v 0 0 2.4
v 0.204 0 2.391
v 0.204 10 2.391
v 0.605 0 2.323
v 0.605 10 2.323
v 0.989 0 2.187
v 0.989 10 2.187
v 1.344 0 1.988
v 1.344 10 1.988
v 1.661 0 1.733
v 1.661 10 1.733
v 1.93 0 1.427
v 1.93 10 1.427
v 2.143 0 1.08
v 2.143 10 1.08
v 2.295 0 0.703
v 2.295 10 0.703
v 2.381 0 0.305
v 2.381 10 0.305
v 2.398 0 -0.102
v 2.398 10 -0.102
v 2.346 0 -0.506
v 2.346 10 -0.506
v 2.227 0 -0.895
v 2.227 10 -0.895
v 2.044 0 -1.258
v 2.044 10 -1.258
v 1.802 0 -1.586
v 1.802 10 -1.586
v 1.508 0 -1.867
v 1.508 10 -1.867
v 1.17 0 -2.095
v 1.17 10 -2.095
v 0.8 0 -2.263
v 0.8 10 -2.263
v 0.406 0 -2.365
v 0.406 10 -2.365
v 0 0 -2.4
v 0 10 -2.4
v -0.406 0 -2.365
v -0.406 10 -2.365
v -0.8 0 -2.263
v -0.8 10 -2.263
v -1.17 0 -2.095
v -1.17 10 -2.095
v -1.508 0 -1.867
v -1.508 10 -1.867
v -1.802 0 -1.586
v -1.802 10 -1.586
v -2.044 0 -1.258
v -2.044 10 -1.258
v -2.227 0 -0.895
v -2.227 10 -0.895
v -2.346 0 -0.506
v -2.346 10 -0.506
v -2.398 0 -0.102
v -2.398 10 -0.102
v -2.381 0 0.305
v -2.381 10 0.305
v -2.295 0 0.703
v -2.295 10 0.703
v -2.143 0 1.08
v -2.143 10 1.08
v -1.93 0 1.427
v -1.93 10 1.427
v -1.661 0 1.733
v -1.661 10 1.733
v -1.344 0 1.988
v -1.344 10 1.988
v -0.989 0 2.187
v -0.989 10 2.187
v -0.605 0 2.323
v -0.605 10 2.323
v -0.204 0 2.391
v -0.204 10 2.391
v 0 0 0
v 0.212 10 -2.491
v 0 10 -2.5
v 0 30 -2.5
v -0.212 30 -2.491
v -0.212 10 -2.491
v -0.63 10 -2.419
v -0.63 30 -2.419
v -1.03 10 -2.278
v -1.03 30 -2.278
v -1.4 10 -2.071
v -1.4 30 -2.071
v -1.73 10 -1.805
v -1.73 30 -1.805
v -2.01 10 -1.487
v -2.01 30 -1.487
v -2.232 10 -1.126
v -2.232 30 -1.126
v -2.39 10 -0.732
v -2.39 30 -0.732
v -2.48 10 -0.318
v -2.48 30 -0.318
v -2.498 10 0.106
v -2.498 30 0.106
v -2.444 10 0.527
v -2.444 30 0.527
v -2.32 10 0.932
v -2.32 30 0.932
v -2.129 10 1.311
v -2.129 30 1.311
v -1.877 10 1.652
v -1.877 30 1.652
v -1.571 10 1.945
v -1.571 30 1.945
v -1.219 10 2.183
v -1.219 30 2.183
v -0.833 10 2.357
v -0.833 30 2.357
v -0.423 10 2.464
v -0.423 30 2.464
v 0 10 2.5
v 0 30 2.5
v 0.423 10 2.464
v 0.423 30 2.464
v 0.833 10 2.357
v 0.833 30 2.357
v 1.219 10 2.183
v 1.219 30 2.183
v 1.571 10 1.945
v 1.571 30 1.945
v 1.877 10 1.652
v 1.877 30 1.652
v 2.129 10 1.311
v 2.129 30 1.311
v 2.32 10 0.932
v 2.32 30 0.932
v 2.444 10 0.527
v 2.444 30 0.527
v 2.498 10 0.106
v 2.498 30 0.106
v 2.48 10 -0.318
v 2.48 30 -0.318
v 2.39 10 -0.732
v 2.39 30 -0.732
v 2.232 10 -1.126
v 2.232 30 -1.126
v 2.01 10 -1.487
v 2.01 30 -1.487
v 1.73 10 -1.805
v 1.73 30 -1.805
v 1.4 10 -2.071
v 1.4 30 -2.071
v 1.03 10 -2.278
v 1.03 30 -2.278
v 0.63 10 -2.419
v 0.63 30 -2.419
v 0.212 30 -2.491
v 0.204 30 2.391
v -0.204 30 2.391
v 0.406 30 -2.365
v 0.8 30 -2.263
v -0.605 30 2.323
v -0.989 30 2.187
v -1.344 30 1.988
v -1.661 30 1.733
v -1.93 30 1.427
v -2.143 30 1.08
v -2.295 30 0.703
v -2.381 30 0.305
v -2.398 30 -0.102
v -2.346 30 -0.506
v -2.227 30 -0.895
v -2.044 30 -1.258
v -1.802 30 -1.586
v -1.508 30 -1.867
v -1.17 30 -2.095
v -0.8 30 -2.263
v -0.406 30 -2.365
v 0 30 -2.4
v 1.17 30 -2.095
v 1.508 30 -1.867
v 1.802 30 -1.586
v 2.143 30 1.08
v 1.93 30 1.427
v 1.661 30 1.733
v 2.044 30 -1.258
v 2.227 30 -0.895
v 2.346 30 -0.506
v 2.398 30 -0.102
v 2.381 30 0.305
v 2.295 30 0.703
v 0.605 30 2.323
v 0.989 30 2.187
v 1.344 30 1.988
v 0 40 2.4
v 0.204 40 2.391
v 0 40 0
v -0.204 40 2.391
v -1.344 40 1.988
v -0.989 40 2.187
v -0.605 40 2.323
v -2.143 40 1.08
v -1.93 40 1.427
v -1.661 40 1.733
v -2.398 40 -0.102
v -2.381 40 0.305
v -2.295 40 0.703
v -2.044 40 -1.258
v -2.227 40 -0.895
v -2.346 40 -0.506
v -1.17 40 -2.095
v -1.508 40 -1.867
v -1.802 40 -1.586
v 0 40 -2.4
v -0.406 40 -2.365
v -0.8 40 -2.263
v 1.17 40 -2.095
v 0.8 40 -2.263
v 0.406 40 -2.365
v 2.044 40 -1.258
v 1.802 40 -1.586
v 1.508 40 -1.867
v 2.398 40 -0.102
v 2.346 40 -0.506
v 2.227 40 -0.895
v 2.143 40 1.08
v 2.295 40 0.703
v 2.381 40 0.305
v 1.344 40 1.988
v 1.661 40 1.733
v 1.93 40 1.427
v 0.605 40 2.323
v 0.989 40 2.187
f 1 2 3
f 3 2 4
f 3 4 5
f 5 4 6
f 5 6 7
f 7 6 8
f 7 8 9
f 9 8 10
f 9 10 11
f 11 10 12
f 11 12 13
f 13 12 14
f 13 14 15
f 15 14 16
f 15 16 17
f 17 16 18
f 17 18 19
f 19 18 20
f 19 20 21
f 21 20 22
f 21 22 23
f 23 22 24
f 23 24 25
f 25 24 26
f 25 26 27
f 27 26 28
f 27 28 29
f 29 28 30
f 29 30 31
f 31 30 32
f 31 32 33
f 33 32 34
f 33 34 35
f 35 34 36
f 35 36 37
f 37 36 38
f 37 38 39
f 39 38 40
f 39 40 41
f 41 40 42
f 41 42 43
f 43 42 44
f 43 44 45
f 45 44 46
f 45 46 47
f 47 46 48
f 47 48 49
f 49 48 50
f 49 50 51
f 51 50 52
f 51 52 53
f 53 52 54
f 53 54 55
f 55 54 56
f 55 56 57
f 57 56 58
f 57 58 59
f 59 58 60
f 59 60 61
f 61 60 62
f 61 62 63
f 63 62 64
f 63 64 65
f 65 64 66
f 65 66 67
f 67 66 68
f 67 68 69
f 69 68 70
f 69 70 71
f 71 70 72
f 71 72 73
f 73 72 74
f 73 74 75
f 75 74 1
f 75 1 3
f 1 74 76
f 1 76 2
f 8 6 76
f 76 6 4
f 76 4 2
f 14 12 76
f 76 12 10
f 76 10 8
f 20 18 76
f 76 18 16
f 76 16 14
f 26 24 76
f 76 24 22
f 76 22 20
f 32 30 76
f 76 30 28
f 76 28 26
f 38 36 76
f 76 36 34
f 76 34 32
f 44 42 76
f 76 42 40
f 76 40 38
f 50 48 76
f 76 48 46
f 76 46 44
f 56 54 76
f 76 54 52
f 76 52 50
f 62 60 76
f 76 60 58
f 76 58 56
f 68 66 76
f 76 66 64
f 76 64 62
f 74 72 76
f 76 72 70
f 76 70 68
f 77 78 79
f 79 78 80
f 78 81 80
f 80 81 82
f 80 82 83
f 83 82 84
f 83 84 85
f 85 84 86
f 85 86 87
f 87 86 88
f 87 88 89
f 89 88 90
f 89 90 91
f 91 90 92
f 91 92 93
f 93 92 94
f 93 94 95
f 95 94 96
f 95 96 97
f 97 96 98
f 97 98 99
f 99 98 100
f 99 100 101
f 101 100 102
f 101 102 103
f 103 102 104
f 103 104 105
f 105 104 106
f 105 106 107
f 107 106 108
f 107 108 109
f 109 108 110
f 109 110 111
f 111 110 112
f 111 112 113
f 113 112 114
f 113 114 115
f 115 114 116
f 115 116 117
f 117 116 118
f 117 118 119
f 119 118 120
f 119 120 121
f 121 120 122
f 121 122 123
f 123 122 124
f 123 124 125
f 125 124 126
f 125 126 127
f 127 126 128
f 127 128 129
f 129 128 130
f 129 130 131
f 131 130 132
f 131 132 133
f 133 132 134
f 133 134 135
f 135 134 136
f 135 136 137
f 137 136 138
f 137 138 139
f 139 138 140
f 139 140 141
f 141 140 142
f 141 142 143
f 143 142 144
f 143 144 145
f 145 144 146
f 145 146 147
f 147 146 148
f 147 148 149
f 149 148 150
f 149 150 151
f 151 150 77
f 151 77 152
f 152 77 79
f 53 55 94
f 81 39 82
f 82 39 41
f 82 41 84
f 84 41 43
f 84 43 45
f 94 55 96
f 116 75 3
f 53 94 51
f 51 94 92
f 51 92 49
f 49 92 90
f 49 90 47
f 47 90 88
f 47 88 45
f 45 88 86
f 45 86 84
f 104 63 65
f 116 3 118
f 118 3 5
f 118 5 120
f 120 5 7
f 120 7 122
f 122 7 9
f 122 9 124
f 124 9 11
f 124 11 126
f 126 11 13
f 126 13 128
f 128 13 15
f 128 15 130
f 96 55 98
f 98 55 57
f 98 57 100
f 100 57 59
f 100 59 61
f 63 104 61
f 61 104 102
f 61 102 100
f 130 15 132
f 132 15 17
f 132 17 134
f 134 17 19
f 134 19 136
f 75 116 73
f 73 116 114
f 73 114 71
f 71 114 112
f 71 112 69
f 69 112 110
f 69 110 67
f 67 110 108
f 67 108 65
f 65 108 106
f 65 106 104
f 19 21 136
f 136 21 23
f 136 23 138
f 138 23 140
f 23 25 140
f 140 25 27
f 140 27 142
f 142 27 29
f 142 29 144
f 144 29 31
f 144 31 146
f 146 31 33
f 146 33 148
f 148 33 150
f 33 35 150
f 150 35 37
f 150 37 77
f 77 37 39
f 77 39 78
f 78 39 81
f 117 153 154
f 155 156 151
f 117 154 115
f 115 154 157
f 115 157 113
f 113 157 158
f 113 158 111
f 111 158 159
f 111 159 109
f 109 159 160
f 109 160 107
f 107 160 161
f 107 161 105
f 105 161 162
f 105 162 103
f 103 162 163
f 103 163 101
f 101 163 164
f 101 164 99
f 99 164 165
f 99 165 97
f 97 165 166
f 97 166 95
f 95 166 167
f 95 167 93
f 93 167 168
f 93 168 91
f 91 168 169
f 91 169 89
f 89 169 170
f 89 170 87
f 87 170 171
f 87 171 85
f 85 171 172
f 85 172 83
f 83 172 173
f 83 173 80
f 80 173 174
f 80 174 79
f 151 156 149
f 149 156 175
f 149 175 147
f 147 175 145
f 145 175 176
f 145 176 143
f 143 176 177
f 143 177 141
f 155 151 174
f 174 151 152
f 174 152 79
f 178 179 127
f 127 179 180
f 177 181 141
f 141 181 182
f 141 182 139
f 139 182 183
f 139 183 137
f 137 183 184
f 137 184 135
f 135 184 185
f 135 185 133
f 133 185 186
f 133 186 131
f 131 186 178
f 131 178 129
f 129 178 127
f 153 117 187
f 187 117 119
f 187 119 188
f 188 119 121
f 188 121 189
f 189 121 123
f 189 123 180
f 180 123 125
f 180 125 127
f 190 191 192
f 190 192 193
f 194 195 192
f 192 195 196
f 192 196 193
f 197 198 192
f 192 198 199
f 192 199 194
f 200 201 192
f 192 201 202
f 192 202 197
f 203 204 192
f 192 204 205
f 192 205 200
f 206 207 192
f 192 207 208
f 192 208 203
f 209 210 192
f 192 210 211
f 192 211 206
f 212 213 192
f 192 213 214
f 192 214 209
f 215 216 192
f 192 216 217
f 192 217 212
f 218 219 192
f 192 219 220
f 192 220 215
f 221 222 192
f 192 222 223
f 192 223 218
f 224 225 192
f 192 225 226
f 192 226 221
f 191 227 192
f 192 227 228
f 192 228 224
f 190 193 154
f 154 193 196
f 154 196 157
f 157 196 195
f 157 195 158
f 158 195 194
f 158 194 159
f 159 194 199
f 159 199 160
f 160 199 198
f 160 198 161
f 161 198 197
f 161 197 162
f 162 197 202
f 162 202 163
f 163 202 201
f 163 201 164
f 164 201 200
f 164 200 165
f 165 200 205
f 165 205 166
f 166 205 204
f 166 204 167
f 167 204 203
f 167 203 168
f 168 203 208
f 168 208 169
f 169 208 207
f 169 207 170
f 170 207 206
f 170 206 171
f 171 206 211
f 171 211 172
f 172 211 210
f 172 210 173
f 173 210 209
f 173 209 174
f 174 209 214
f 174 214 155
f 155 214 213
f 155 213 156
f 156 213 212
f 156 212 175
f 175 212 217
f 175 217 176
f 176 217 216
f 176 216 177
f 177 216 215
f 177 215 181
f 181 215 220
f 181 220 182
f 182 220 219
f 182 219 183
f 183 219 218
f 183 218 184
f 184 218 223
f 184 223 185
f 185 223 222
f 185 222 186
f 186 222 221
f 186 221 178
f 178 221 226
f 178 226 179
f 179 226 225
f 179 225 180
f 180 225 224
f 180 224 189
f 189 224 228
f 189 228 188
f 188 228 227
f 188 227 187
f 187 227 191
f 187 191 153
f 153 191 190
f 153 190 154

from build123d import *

# Parameters (mm, degrees)
SKETCH_1_R      = 2.4
EXTRUDE_1_DEPTH = 40
SKETCH_2_R      = 2.5
EXTRUDE_2_DEPTH = 10


with BuildPart() as part:
    # 草图1 → 凸台-拉伸1 (new body)
    with BuildSketch(Plane(origin=(0, 0, 0), x_dir=(1, 0, 0), z_dir=(0, 1, 0))):
        with Locations(Location((0, 0, 0), (0, 0, 270))):
            Circle(SKETCH_1_R)
    extrude(amount=EXTRUDE_1_DEPTH)

    # 草图2 → 凸台-拉伸2 (add, symmetric)
    with BuildSketch(Plane(origin=(0, 20, 0), x_dir=(-1, 0, 0), z_dir=(0, -1, 0))):
        with Locations(Location((0, 0, 0), (0, 0, 90))):
            Circle(SKETCH_2_R)
    extrude(amount=EXTRUDE_2_DEPTH, both=True)


solid = part.part
